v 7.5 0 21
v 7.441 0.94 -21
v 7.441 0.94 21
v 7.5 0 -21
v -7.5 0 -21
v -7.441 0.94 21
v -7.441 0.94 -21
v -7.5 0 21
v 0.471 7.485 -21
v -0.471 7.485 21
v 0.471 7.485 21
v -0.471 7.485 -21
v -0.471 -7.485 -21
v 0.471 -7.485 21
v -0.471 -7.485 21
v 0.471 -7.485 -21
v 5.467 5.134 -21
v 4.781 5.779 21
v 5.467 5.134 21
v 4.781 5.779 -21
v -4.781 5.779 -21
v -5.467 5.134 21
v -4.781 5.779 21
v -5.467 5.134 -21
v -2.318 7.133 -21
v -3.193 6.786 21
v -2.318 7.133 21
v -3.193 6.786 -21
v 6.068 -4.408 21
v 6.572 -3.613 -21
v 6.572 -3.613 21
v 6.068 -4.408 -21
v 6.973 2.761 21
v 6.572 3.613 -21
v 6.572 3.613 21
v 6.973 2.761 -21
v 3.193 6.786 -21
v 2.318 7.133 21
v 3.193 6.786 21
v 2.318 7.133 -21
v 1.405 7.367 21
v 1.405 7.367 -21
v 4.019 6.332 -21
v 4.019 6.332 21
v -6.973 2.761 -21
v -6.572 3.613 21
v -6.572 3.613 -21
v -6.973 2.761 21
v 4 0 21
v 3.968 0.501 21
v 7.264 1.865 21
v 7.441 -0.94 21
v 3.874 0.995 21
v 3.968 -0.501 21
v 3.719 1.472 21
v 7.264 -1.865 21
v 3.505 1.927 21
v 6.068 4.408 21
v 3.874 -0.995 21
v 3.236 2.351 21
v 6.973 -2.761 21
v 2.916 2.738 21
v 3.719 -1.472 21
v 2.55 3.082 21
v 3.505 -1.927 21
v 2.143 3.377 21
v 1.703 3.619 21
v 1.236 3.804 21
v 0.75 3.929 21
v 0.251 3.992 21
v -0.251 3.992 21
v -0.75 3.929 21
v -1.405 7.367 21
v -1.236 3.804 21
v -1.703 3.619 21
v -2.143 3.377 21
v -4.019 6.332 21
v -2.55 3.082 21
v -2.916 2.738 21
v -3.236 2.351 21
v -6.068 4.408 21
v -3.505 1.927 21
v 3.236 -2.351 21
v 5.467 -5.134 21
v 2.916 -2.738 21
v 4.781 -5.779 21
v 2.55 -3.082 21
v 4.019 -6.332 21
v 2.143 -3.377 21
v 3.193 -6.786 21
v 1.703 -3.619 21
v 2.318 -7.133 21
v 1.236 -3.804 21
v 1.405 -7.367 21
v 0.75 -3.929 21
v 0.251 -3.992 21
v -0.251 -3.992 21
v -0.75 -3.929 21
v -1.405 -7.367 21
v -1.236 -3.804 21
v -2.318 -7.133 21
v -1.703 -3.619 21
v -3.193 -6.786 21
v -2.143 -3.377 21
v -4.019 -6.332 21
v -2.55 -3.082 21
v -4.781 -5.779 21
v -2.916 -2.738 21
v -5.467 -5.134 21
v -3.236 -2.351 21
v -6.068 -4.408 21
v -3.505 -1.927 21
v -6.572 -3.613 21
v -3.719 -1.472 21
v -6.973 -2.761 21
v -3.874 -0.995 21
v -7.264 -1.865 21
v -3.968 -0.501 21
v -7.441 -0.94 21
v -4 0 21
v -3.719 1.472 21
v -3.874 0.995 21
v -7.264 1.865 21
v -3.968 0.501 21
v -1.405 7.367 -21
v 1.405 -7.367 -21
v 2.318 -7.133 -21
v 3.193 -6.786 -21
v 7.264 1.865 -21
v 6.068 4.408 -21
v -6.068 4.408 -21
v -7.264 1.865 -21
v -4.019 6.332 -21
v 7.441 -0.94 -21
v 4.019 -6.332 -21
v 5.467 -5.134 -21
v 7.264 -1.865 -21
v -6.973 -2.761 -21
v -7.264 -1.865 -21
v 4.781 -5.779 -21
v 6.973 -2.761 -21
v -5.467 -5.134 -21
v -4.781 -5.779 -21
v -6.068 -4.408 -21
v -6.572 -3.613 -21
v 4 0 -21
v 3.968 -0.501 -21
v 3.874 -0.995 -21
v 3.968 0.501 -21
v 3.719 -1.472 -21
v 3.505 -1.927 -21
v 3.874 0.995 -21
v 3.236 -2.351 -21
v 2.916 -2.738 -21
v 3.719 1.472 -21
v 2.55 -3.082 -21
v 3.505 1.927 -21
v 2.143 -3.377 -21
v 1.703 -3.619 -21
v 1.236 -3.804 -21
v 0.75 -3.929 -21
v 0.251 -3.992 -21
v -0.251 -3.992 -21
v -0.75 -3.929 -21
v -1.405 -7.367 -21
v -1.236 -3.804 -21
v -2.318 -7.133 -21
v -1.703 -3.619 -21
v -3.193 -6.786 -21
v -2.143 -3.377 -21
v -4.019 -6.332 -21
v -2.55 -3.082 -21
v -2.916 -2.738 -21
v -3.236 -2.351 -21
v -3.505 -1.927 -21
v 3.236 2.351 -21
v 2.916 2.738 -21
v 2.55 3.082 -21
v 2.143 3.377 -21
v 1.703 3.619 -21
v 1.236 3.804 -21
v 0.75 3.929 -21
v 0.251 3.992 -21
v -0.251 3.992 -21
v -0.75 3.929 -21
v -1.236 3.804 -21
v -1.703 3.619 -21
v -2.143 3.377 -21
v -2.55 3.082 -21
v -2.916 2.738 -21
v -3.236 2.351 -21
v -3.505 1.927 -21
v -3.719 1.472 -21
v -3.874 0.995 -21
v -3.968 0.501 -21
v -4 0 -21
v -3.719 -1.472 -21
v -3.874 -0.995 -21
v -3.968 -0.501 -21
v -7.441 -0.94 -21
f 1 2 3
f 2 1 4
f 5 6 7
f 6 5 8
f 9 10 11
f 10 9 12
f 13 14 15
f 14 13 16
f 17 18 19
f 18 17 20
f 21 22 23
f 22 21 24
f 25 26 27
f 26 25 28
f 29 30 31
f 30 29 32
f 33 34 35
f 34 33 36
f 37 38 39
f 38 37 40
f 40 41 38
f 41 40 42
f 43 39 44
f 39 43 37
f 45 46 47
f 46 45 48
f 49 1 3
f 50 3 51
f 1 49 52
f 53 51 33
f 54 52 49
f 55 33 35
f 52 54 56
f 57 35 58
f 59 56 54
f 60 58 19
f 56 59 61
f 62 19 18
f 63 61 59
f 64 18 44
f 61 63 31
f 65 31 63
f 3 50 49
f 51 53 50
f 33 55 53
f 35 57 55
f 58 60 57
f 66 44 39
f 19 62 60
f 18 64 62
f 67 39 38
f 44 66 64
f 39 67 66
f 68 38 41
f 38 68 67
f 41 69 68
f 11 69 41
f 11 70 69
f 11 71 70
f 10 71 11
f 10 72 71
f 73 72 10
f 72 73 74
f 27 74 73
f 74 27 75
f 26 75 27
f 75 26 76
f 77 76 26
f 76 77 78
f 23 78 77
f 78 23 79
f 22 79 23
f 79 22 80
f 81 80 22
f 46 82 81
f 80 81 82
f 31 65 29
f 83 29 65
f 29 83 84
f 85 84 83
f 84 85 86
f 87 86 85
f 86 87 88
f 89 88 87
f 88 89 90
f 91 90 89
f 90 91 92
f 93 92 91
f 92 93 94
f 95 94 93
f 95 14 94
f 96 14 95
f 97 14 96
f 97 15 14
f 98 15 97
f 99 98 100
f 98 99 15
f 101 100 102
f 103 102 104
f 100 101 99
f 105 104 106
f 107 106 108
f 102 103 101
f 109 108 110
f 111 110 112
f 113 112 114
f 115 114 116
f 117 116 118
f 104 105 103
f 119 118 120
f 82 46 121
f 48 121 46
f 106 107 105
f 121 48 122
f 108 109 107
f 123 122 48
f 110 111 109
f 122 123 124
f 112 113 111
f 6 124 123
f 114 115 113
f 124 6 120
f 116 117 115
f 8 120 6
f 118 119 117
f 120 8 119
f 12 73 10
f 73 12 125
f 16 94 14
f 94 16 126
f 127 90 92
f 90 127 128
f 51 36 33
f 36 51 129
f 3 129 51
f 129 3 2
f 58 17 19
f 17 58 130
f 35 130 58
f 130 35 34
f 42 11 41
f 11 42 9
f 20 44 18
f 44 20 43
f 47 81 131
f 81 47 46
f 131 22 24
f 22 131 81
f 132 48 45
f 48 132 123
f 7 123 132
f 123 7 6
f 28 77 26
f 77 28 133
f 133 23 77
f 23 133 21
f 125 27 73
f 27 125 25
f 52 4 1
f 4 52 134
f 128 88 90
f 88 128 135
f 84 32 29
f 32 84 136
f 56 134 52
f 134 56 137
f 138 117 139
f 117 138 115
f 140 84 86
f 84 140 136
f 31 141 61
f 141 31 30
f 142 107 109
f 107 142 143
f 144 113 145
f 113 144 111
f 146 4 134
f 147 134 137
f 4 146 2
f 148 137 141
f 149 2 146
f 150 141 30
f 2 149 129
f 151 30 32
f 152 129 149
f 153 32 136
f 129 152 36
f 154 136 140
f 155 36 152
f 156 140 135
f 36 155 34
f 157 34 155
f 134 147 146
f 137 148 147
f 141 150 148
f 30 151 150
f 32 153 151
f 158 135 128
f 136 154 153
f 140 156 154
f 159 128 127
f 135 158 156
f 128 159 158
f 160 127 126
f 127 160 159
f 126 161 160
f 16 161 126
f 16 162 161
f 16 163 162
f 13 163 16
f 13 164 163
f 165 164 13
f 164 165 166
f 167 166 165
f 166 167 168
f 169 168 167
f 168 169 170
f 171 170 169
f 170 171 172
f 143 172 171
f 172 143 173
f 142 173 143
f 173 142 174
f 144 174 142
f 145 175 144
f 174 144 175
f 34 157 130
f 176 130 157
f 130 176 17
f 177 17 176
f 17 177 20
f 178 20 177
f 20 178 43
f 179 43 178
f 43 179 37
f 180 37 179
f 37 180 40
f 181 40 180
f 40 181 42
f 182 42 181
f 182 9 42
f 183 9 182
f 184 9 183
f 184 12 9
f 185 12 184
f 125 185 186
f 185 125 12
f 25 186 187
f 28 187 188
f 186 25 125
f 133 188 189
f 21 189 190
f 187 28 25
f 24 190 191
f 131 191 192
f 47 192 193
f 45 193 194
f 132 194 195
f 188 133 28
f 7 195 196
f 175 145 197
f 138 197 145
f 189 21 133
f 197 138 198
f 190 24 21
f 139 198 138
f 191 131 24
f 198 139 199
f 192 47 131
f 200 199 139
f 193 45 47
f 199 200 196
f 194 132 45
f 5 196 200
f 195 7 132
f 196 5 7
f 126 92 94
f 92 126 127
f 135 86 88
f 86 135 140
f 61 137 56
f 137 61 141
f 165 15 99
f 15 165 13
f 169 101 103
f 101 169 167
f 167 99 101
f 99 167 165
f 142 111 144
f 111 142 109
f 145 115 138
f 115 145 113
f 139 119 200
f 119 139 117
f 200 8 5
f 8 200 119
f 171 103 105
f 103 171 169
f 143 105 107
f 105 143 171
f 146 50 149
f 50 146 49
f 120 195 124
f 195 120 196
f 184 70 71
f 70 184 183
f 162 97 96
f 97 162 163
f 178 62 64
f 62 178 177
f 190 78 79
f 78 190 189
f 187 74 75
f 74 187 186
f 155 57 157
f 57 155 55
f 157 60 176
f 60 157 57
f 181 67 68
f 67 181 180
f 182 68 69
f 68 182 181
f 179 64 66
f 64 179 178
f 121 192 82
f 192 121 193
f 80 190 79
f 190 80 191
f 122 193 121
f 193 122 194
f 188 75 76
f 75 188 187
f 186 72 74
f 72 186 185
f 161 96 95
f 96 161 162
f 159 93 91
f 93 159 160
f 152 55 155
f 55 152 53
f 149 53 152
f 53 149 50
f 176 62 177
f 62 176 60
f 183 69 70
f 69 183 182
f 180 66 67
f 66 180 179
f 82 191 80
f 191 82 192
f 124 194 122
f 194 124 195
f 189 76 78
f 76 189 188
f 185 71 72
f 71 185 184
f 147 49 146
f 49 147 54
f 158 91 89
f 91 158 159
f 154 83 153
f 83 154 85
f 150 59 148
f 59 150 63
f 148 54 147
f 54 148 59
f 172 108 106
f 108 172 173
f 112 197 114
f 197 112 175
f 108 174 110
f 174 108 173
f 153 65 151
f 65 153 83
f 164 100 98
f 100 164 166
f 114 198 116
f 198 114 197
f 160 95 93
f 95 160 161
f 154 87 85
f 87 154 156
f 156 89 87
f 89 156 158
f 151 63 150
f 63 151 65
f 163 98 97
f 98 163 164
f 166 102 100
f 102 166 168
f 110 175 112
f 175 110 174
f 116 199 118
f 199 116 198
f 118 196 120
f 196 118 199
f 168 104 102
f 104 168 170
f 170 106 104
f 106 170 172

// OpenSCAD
$fn = 50;


difference() {
	union() {
		translate(v = [0, 0, -21.0000000000]) {
			cylinder(h = 42, r = 7.5000000000);
		}
	}
	union() {
		translate(v = [0, 0, -100.0000000000]) {
			cylinder(h = 200, r = 4.0000000000);
		}
	}
}
